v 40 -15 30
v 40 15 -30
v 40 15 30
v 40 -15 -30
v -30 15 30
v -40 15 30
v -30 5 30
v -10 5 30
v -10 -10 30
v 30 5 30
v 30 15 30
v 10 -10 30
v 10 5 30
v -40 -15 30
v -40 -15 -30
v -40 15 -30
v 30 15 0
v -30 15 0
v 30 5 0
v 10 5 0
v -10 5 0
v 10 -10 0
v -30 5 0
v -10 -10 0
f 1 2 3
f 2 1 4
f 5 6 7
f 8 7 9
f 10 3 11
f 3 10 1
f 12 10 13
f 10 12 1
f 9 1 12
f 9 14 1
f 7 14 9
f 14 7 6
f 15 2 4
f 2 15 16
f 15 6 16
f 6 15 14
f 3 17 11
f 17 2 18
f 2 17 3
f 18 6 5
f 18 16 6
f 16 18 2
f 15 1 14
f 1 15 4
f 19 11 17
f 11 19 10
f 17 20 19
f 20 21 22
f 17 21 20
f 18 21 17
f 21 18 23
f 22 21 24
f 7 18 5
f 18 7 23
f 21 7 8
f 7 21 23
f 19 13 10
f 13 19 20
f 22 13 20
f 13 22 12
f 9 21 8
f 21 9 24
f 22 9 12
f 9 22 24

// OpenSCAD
// file: _common.scad
// orthographic 共用尺寸 / 解析度設定
// 所有物件外接立方控制在 ~80 mm，方便相機固定縮放
$fn = 64;  // 圓面解析度（影響 STL 大小，64 在視覺與大小取得平衡）
CHAMFER = 1.2;  // 標準導角尺寸
// main file
// T 槽塊：頂面有「T 字形」凹槽（從 +Y 看像 T）
// 主體 80×60×30，從頂部挖 T 形溝槽
include <_common.scad>

difference() {
  // 主體
  translate([-40, -15, -30]) cube([80, 30, 60]);
  // T 字形溝槽：中央寬通道 + 頂部窄入口
  // T 的橫條（深 10）
  translate([-30, 5, 0]) cube([60, 12, 30]);
  // T 的直條（從橫條中央往下到底）
  translate([-10, -10, 0]) cube([20, 18, 30]);
}
